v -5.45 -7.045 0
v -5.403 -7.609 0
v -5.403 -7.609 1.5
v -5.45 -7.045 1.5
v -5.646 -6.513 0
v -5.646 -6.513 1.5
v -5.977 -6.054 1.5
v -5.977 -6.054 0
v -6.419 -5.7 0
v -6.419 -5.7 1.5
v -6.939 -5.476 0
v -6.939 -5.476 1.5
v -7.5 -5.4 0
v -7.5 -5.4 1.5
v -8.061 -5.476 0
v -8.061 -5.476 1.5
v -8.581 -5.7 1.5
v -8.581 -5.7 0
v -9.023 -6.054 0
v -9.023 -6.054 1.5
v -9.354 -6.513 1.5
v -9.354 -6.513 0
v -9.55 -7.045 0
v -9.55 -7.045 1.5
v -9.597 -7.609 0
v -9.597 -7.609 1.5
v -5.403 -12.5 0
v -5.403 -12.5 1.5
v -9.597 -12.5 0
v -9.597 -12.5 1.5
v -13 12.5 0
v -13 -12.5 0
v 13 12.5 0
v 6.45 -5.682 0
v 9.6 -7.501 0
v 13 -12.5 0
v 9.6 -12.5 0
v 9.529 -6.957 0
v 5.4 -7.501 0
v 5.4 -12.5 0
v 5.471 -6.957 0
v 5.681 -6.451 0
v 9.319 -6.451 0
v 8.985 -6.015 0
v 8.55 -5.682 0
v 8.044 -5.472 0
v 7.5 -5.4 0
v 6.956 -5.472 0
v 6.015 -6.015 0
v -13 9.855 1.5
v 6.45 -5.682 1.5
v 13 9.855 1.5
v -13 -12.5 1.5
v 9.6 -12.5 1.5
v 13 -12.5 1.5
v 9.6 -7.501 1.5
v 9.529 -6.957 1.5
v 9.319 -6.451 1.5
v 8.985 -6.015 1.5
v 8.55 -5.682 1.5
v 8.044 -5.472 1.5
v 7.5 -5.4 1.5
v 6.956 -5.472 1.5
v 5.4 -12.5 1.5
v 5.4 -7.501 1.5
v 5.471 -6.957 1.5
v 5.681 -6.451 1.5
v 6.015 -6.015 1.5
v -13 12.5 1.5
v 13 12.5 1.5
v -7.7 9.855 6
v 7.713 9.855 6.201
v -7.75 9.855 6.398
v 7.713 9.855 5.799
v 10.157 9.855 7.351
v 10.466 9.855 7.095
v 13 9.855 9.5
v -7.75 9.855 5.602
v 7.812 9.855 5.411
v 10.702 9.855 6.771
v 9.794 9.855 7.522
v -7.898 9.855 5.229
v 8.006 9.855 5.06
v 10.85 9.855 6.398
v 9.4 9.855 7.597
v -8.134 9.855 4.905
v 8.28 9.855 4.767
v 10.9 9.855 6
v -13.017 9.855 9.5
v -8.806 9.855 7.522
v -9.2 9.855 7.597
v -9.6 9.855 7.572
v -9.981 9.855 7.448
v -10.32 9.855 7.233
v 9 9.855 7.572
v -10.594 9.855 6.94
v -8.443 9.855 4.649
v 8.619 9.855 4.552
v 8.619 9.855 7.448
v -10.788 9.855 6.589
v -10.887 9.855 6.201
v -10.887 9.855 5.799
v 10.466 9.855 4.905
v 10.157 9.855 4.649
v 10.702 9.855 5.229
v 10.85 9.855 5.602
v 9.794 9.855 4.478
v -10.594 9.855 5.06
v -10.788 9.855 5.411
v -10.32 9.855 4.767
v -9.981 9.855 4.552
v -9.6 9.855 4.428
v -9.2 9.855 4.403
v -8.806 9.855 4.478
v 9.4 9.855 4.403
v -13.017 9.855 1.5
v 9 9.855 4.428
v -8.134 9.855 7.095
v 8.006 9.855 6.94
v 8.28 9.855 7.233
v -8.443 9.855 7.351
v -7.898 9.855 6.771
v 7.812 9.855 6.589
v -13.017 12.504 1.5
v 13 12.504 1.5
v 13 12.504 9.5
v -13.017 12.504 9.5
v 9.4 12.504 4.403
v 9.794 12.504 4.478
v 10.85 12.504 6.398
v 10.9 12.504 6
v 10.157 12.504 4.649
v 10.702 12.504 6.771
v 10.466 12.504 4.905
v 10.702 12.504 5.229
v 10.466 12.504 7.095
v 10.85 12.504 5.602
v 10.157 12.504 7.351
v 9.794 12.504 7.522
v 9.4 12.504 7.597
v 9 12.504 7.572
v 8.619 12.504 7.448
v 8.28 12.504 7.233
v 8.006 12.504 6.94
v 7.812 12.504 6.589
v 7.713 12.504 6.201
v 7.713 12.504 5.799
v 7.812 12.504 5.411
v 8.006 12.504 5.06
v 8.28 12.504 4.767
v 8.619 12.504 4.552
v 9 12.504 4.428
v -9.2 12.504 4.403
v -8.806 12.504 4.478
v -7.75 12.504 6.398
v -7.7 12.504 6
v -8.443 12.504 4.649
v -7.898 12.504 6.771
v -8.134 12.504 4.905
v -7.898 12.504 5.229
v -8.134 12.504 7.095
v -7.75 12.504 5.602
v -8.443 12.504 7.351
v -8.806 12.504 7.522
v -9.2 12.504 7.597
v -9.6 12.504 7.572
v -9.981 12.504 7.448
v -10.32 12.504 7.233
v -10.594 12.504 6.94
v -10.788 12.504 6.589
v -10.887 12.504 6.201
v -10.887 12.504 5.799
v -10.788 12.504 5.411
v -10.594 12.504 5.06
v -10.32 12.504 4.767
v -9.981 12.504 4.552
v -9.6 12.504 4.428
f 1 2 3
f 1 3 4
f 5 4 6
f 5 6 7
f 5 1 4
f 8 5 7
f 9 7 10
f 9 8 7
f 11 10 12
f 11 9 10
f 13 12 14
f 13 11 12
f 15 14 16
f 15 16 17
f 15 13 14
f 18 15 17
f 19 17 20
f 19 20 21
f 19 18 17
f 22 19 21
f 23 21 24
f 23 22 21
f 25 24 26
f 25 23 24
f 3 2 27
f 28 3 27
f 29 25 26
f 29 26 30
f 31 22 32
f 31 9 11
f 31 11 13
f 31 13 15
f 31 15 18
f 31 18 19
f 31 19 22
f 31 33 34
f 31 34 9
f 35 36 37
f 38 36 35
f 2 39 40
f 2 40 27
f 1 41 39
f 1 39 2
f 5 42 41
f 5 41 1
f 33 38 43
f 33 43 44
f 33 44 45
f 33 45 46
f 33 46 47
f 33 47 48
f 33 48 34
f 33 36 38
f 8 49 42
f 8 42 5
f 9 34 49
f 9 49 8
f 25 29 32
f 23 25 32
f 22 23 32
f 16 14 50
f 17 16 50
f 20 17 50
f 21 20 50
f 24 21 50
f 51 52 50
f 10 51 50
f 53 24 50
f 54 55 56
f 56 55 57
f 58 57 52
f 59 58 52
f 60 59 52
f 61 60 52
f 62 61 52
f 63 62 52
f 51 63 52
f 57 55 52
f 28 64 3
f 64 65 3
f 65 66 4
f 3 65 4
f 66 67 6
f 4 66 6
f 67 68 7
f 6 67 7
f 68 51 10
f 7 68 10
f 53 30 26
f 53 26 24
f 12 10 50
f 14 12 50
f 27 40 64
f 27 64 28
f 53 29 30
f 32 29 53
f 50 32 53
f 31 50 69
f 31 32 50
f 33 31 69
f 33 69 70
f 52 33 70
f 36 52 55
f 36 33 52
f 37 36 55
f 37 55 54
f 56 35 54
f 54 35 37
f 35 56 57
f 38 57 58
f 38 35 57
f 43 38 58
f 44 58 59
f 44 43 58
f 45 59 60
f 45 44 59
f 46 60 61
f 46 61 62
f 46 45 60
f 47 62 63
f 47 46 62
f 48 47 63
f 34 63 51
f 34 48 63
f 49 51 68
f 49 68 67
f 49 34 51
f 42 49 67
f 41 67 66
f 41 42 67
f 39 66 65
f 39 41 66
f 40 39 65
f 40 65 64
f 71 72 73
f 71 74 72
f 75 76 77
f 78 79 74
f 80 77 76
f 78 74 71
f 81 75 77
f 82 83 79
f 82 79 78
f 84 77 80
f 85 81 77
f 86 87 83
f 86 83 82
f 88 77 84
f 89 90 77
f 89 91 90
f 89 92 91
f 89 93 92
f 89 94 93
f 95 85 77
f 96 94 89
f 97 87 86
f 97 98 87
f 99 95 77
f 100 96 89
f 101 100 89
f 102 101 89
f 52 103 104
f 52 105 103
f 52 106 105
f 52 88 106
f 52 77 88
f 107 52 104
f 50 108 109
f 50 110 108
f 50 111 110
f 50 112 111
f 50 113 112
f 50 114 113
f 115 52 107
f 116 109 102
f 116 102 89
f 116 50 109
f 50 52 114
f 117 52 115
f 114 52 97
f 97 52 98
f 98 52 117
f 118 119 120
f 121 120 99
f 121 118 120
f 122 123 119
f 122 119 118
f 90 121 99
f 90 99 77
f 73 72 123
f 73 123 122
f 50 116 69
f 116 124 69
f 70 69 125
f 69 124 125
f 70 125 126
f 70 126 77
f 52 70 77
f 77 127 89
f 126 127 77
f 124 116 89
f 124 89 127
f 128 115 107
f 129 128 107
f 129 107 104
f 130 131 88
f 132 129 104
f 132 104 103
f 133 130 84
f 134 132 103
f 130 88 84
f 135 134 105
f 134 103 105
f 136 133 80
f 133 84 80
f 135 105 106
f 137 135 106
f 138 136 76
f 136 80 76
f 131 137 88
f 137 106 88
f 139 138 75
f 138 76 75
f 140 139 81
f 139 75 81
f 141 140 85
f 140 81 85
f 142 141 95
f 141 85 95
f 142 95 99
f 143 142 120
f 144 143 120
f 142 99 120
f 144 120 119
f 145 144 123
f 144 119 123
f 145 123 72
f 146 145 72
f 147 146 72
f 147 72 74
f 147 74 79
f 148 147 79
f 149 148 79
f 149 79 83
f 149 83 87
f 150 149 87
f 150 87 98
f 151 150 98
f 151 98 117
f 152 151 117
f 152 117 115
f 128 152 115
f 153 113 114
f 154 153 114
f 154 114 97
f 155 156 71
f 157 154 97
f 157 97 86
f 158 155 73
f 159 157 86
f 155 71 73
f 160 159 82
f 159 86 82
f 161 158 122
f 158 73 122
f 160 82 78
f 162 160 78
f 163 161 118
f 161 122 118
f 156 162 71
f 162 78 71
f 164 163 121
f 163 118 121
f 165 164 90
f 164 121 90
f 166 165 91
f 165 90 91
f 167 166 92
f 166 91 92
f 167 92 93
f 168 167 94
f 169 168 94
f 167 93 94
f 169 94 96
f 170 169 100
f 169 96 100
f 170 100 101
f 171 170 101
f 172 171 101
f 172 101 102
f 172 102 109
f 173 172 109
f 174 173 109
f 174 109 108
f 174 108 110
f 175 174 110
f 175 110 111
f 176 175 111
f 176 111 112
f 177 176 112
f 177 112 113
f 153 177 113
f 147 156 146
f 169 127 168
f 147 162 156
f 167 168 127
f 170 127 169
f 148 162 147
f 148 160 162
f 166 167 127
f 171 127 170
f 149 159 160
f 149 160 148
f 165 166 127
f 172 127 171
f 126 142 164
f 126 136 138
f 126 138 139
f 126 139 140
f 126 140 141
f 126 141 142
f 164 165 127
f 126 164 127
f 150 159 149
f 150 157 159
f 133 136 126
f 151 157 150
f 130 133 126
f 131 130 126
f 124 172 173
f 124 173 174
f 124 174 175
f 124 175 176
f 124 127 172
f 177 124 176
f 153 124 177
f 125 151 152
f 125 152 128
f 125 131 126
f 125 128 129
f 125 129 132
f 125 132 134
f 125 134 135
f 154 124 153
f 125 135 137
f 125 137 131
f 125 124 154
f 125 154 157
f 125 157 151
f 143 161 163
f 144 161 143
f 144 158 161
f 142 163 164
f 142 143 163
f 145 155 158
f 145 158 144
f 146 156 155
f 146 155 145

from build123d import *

# Parameters (mm, degrees)
PAD_DEPTH    = 1.5
SKETCH001_W  = 26.017304
SKETCH001_H  = 2.649366
PAD001_DEPTH = 8
SKETCH002_R  = 1.6
POCKET_DEPTH = 2.650366


with BuildPart() as part:
    # Sketch → Pad (new body)
    with BuildSketch(Plane.XY):
        with BuildLine():
            Line((-13, 12.5), (13, 12.5))
            Line((13, 12.5), (13, -12.5))
            Line((13, -12.5), (9.6, -12.5))
            Line((9.6, -7.500992), (9.6, -12.5))
            ThreePointArc((9.6, -7.500992), (7.5, -5.4), (5.4, -7.500992))
            Line((5.4, -7.500992), (5.4, -12.5))
            Line((5.4, -12.5), (-5.40282, -12.5))
            Line((-5.40282, -7.608787), (-5.40282, -12.5))
            ThreePointArc((-5.40282, -7.608787), (-7.5, -5.4), (-9.59718, -7.608787))
            Line((-9.59718, -7.608787), (-9.59718, -12.5))
            Line((-9.59718, -12.5), (-13, -12.5))
            Line((-13, -12.5), (-13, 12.5))
        make_face()
    extrude(amount=PAD_DEPTH)

    # Sketch001 → Pad001 (new body)
    with BuildSketch(Plane.XY.offset(1.5)):
        with Locations((-0.008652, 11.17938)):
            Rectangle(SKETCH001_W, SKETCH001_H)
    extrude(amount=PAD001_DEPTH)

    # Sketch002 → Pocket (cut, through all)
    with BuildSketch(Plane.XZ.offset(-9.854697)):
        with Locations((-9.3, 6)):
            Circle(SKETCH002_R)
        with Locations((9.3, 6)):
            Circle(SKETCH002_R)
    extrude(amount=-POCKET_DEPTH, mode=Mode.SUBTRACT)


solid = part.part
